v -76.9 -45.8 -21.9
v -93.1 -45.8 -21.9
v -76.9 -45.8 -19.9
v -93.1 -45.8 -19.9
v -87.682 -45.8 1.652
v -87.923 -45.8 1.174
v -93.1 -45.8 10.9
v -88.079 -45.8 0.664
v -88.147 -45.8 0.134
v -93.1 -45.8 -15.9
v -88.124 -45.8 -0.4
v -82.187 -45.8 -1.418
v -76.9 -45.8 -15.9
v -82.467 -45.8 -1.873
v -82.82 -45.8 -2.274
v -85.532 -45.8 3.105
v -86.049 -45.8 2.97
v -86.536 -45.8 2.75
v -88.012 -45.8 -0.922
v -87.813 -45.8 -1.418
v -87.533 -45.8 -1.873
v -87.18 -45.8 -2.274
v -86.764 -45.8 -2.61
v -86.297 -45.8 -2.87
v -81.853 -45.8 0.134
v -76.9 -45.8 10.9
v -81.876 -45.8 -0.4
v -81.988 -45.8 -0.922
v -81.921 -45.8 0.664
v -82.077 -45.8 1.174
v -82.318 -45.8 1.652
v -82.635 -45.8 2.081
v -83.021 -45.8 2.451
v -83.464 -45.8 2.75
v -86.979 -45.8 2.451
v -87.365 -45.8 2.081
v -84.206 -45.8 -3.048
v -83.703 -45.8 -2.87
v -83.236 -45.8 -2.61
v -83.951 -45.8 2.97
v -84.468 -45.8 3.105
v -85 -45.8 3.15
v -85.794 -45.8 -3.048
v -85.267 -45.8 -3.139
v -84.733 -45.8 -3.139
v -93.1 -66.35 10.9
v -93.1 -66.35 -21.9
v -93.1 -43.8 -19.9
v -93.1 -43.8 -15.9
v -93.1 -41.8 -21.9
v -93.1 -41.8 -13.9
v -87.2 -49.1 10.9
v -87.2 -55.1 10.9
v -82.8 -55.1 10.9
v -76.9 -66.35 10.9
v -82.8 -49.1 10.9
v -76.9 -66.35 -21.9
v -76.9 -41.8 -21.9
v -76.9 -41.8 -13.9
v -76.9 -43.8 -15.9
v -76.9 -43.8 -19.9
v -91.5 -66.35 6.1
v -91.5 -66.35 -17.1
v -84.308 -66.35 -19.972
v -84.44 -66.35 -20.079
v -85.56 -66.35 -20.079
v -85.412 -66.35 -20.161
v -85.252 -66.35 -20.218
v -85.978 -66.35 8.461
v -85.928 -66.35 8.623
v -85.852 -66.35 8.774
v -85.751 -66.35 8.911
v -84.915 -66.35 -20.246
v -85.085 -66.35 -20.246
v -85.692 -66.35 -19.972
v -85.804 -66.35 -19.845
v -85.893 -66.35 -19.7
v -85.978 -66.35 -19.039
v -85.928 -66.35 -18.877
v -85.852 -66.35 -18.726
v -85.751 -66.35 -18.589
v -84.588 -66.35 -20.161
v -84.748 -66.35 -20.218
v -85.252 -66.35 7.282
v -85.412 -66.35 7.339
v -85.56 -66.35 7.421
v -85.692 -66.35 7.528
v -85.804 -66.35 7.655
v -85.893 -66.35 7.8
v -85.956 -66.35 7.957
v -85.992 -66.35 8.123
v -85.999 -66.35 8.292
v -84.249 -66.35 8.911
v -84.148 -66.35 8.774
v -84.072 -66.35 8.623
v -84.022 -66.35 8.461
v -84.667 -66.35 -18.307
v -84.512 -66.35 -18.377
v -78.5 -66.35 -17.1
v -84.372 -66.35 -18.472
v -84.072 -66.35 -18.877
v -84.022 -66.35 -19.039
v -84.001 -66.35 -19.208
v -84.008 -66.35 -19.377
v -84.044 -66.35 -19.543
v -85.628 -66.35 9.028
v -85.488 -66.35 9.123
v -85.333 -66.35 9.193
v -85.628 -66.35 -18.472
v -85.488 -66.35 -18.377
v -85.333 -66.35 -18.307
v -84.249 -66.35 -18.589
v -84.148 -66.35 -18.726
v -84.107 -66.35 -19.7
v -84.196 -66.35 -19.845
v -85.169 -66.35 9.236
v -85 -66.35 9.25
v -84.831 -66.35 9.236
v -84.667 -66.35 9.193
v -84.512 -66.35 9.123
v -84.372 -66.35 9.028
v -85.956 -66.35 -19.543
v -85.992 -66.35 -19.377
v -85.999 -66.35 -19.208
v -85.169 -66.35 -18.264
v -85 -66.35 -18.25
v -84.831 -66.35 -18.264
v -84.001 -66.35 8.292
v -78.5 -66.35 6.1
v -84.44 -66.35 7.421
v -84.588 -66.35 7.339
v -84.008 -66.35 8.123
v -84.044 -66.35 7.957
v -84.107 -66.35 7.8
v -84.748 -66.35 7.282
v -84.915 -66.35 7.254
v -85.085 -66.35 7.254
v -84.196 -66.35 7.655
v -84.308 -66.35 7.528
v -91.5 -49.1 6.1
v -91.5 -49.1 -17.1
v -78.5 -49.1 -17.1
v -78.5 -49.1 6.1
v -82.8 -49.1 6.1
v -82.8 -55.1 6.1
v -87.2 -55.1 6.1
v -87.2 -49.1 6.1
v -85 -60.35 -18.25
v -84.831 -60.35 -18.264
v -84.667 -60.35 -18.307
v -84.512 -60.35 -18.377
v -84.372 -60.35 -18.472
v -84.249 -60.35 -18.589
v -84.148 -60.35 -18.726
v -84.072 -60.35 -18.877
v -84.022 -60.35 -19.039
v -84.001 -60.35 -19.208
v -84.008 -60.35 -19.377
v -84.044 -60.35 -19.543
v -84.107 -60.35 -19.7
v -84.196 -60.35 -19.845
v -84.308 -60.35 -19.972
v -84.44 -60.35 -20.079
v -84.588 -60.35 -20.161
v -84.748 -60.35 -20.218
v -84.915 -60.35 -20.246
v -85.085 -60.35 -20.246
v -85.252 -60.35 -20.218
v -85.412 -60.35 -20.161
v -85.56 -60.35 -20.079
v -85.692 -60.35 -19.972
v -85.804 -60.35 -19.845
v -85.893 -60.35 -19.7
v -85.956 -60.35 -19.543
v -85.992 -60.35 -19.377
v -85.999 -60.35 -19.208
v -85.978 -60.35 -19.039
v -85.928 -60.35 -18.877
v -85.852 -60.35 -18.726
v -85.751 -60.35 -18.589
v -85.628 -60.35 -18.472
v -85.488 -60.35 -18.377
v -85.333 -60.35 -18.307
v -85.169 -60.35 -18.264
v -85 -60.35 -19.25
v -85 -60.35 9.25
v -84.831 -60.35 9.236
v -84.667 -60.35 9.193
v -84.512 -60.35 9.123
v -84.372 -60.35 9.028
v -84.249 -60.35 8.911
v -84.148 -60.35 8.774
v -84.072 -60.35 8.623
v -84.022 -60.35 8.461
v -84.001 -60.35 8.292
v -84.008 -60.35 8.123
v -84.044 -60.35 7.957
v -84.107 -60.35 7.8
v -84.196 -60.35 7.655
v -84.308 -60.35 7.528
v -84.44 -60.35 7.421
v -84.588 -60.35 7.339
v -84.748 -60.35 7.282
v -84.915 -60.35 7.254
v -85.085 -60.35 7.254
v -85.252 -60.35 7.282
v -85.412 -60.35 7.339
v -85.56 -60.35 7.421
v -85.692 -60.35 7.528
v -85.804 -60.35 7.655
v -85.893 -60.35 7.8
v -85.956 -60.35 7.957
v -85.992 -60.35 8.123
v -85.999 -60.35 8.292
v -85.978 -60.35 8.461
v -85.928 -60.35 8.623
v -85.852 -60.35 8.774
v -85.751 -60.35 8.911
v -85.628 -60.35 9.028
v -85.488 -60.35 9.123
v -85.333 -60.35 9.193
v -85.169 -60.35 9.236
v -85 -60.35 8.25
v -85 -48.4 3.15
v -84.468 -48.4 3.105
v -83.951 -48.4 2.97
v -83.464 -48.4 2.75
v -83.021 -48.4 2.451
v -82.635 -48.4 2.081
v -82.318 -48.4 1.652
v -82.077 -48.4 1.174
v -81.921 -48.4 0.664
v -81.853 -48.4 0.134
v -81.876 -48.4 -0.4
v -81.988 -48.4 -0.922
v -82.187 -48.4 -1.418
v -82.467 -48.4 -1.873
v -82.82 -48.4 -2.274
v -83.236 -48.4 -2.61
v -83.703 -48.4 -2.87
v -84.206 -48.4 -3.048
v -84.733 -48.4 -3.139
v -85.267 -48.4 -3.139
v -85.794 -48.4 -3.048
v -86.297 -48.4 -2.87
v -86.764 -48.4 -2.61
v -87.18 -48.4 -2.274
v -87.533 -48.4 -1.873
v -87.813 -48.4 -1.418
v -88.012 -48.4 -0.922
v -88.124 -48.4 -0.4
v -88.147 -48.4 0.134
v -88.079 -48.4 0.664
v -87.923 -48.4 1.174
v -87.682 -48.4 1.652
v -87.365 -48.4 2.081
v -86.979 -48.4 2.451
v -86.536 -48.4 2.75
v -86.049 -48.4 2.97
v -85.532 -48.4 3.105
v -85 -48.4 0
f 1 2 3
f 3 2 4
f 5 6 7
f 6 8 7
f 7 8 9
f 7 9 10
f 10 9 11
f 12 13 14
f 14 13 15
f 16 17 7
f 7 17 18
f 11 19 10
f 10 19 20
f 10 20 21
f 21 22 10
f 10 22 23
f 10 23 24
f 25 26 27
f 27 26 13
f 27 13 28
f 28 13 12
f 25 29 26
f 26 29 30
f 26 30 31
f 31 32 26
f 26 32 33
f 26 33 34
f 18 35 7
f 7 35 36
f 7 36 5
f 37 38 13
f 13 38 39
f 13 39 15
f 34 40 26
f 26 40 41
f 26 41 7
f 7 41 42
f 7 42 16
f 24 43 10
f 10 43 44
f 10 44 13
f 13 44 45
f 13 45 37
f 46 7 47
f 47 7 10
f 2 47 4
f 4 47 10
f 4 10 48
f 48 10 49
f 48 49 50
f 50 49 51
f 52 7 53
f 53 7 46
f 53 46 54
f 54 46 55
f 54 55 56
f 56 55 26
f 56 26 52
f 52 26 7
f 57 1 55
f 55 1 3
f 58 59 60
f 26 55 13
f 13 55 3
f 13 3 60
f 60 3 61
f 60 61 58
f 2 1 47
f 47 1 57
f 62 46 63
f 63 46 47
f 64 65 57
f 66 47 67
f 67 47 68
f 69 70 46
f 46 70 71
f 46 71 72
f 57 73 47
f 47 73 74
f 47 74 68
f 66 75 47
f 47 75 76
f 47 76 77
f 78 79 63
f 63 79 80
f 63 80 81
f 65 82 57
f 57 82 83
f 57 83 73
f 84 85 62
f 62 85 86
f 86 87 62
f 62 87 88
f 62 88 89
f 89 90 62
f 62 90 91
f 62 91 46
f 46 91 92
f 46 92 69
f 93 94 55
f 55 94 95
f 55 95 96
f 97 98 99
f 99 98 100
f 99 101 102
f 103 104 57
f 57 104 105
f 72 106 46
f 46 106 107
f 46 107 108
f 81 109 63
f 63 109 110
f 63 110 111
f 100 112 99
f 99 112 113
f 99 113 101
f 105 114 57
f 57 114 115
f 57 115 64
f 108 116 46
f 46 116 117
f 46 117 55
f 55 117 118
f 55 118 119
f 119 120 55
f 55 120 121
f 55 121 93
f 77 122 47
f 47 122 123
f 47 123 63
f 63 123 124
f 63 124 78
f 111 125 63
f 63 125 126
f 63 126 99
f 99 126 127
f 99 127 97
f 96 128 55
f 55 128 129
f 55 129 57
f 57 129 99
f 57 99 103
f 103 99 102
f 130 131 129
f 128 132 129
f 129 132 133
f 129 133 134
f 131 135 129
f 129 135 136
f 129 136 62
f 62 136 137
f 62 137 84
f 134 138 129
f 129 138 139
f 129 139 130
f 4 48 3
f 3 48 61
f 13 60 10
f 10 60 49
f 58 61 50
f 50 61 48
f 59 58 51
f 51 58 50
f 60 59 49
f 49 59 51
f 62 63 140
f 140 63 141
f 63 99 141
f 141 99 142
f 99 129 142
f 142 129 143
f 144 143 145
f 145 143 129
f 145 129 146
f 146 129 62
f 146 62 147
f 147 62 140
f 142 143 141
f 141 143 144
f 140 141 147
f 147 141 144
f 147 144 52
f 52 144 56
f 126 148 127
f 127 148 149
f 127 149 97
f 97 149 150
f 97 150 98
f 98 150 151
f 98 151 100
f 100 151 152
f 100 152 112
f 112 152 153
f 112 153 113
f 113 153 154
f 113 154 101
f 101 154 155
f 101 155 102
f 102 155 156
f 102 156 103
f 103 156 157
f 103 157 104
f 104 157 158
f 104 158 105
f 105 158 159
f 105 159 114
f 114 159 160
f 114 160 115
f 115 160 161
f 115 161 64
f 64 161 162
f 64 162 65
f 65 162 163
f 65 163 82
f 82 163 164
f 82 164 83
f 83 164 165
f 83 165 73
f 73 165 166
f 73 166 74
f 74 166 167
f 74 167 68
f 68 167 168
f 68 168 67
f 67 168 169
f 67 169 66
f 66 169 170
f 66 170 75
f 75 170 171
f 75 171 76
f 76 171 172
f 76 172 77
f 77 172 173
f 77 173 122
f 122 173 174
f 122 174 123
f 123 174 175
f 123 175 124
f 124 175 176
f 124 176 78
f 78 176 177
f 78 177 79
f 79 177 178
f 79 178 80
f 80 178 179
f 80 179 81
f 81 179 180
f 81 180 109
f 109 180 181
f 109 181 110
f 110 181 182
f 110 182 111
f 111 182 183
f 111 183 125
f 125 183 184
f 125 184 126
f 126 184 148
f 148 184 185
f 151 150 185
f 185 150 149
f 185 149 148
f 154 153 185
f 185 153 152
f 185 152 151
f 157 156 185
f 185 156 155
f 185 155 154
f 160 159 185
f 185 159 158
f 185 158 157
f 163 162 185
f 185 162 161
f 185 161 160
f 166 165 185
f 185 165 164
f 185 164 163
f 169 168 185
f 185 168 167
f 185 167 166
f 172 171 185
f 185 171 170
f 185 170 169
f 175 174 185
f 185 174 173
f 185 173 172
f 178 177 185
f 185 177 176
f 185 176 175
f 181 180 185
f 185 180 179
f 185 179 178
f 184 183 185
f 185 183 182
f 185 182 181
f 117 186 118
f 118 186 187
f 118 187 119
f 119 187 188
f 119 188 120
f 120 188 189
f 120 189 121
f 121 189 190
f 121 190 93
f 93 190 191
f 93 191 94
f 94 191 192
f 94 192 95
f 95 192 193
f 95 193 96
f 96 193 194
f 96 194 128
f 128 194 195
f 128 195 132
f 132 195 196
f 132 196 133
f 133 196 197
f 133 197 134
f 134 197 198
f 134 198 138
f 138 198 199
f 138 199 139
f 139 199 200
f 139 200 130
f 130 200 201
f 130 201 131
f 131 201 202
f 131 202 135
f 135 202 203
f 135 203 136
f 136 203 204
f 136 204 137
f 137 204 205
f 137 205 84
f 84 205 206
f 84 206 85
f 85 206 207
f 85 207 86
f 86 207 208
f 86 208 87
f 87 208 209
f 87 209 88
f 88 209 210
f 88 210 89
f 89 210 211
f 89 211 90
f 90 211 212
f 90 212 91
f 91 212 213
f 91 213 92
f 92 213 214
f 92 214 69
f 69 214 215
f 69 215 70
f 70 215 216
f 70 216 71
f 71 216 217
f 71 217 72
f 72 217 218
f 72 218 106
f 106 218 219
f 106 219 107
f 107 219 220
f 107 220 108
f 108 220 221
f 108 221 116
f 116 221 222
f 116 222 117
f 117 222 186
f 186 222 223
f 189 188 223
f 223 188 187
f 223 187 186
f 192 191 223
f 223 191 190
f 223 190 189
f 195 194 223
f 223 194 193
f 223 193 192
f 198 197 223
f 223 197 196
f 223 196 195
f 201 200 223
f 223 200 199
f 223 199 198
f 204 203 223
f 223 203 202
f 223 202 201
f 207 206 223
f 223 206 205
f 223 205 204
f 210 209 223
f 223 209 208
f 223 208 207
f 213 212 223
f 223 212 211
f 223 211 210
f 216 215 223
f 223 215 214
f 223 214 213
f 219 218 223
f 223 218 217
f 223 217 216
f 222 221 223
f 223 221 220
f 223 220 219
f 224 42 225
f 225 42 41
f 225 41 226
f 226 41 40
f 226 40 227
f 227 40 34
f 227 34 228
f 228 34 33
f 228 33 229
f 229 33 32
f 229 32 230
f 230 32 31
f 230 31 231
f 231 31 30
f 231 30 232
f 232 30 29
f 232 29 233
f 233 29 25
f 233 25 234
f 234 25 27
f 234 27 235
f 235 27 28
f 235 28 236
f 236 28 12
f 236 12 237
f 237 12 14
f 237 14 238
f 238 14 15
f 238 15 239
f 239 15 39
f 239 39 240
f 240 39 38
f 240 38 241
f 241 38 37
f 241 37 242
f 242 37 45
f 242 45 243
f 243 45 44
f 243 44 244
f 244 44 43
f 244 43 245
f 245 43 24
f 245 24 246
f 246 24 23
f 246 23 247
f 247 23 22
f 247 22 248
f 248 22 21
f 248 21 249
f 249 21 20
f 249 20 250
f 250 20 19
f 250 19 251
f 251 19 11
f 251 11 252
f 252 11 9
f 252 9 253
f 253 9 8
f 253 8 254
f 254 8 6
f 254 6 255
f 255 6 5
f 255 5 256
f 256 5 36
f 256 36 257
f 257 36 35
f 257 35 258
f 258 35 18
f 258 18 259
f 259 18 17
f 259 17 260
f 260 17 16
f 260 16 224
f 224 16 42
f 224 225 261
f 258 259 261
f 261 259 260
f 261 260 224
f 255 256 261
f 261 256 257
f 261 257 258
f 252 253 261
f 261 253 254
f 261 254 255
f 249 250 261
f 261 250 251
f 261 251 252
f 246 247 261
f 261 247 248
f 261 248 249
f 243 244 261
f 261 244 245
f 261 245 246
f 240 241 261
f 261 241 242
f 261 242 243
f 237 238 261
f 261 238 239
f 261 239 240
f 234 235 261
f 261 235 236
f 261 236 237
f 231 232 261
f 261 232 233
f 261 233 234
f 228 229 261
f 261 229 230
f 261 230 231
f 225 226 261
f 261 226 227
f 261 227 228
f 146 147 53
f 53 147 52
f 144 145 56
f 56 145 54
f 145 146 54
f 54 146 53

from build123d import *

# Parameters (mm, degrees)
BOSS_EXTRUDE1_START = -56.075
SKETCH1_W           = 16.2
SKETCH1_H           = 32.8
BOSS_EXTRUDE1_DEPTH = 10.275
BOSS_EXTRUDE2_START = -85
BOSS_EXTRUDE2_DEPTH = 8.1
CUT_EXTRUDE1_START  = -57.725
SKETCH3_W           = 13
SKETCH3_H           = 23.2
CUT_EXTRUDE1_DEPTH  = 8.625
CUT_EXTRUDE2_START  = -63.35
SKETCH4_R           = 1
CUT_EXTRUDE2_DEPTH  = 3
CUT_EXTRUDE3_START  = -63.35
SKETCH5_R           = 1
CUT_EXTRUDE3_DEPTH  = 3
CUT_EXTRUDE4_START  = -47.1
SKETCH6_R           = 3.15
CUT_EXTRUDE4_DEPTH  = 1.3
CUT_EXTRUDE5_START  = 8.5
SKETCH7_W           = 4.4
SKETCH7_H           = 6
CUT_EXTRUDE5_DEPTH  = 2.4


with BuildPart() as part:
    # Sketch1 → Boss-Extrude1 (new, symmetric)
    with BuildSketch(Plane(origin=(0, 0, 0), x_dir=(1, 0, 0), z_dir=(0, 1, 0)).offset(BOSS_EXTRUDE1_START)):
        with Locations((-85, 5.5)):
            Rectangle(SKETCH1_W, SKETCH1_H)
    extrude(amount=BOSS_EXTRUDE1_DEPTH, both=True)

    # Sketch2 → Boss-Extrude2 (add, symmetric)
    with BuildSketch(Plane(origin=(0, 0, 0), x_dir=(0, 0, -1), z_dir=(1, 0, 0)).offset(BOSS_EXTRUDE2_START)):
        Polygon((19.9, -46.3), (15.9, -46.3), (15.9, -43.8), (13.9, -41.8), (21.9, -41.8), (19.9, -43.8), align=None)
    extrude(amount=BOSS_EXTRUDE2_DEPTH, both=True)

    # Sketch3 → Cut-Extrude1 (cut, symmetric)
    with BuildSketch(Plane(origin=(0, 0, 0), x_dir=(1, 0, 0), z_dir=(0, 1, 0)).offset(CUT_EXTRUDE1_START)):
        with Locations((-85, 5.5)):
            Rectangle(SKETCH3_W, SKETCH3_H)
    extrude(amount=CUT_EXTRUDE1_DEPTH, both=True, mode=Mode.SUBTRACT)

    # Sketch4 → Cut-Extrude2 (cut, symmetric)
    with BuildSketch(Plane(origin=(0, 0, 0), x_dir=(1, 0, 0), z_dir=(0, 1, 0)).offset(CUT_EXTRUDE2_START)):
        with Locations(Location((-85, 19.25, 0), (0, 0, 270))):
            Circle(SKETCH4_R)
    extrude(amount=CUT_EXTRUDE2_DEPTH, both=True, mode=Mode.SUBTRACT)

    # Sketch5 → Cut-Extrude3 (cut, symmetric)
    with BuildSketch(Plane(origin=(0, 0, 0), x_dir=(1, 0, 0), z_dir=(0, 1, 0)).offset(CUT_EXTRUDE3_START)):
        with Locations(Location((-85, -8.25, 0), (0, 0, 270))):
            Circle(SKETCH5_R)
    extrude(amount=CUT_EXTRUDE3_DEPTH, both=True, mode=Mode.SUBTRACT)

    # Sketch6 → Cut-Extrude4 (cut, symmetric)
    with BuildSketch(Plane(origin=(0, 0, 0), x_dir=(1, 0, 0), z_dir=(0, 1, 0)).offset(CUT_EXTRUDE4_START)):
        with Locations(Location((-85, 0, 0), (0, 0, 270))):
            Circle(SKETCH6_R)
    extrude(amount=CUT_EXTRUDE4_DEPTH, both=True, mode=Mode.SUBTRACT)

    # Sketch7 → Cut-Extrude5 (cut, symmetric)
    with BuildSketch(Plane.XY.offset(CUT_EXTRUDE5_START)):
        with Locations((-85, -52.1)):
            Rectangle(SKETCH7_W, SKETCH7_H)
    extrude(amount=CUT_EXTRUDE5_DEPTH, both=True, mode=Mode.SUBTRACT)


solid = part.part
